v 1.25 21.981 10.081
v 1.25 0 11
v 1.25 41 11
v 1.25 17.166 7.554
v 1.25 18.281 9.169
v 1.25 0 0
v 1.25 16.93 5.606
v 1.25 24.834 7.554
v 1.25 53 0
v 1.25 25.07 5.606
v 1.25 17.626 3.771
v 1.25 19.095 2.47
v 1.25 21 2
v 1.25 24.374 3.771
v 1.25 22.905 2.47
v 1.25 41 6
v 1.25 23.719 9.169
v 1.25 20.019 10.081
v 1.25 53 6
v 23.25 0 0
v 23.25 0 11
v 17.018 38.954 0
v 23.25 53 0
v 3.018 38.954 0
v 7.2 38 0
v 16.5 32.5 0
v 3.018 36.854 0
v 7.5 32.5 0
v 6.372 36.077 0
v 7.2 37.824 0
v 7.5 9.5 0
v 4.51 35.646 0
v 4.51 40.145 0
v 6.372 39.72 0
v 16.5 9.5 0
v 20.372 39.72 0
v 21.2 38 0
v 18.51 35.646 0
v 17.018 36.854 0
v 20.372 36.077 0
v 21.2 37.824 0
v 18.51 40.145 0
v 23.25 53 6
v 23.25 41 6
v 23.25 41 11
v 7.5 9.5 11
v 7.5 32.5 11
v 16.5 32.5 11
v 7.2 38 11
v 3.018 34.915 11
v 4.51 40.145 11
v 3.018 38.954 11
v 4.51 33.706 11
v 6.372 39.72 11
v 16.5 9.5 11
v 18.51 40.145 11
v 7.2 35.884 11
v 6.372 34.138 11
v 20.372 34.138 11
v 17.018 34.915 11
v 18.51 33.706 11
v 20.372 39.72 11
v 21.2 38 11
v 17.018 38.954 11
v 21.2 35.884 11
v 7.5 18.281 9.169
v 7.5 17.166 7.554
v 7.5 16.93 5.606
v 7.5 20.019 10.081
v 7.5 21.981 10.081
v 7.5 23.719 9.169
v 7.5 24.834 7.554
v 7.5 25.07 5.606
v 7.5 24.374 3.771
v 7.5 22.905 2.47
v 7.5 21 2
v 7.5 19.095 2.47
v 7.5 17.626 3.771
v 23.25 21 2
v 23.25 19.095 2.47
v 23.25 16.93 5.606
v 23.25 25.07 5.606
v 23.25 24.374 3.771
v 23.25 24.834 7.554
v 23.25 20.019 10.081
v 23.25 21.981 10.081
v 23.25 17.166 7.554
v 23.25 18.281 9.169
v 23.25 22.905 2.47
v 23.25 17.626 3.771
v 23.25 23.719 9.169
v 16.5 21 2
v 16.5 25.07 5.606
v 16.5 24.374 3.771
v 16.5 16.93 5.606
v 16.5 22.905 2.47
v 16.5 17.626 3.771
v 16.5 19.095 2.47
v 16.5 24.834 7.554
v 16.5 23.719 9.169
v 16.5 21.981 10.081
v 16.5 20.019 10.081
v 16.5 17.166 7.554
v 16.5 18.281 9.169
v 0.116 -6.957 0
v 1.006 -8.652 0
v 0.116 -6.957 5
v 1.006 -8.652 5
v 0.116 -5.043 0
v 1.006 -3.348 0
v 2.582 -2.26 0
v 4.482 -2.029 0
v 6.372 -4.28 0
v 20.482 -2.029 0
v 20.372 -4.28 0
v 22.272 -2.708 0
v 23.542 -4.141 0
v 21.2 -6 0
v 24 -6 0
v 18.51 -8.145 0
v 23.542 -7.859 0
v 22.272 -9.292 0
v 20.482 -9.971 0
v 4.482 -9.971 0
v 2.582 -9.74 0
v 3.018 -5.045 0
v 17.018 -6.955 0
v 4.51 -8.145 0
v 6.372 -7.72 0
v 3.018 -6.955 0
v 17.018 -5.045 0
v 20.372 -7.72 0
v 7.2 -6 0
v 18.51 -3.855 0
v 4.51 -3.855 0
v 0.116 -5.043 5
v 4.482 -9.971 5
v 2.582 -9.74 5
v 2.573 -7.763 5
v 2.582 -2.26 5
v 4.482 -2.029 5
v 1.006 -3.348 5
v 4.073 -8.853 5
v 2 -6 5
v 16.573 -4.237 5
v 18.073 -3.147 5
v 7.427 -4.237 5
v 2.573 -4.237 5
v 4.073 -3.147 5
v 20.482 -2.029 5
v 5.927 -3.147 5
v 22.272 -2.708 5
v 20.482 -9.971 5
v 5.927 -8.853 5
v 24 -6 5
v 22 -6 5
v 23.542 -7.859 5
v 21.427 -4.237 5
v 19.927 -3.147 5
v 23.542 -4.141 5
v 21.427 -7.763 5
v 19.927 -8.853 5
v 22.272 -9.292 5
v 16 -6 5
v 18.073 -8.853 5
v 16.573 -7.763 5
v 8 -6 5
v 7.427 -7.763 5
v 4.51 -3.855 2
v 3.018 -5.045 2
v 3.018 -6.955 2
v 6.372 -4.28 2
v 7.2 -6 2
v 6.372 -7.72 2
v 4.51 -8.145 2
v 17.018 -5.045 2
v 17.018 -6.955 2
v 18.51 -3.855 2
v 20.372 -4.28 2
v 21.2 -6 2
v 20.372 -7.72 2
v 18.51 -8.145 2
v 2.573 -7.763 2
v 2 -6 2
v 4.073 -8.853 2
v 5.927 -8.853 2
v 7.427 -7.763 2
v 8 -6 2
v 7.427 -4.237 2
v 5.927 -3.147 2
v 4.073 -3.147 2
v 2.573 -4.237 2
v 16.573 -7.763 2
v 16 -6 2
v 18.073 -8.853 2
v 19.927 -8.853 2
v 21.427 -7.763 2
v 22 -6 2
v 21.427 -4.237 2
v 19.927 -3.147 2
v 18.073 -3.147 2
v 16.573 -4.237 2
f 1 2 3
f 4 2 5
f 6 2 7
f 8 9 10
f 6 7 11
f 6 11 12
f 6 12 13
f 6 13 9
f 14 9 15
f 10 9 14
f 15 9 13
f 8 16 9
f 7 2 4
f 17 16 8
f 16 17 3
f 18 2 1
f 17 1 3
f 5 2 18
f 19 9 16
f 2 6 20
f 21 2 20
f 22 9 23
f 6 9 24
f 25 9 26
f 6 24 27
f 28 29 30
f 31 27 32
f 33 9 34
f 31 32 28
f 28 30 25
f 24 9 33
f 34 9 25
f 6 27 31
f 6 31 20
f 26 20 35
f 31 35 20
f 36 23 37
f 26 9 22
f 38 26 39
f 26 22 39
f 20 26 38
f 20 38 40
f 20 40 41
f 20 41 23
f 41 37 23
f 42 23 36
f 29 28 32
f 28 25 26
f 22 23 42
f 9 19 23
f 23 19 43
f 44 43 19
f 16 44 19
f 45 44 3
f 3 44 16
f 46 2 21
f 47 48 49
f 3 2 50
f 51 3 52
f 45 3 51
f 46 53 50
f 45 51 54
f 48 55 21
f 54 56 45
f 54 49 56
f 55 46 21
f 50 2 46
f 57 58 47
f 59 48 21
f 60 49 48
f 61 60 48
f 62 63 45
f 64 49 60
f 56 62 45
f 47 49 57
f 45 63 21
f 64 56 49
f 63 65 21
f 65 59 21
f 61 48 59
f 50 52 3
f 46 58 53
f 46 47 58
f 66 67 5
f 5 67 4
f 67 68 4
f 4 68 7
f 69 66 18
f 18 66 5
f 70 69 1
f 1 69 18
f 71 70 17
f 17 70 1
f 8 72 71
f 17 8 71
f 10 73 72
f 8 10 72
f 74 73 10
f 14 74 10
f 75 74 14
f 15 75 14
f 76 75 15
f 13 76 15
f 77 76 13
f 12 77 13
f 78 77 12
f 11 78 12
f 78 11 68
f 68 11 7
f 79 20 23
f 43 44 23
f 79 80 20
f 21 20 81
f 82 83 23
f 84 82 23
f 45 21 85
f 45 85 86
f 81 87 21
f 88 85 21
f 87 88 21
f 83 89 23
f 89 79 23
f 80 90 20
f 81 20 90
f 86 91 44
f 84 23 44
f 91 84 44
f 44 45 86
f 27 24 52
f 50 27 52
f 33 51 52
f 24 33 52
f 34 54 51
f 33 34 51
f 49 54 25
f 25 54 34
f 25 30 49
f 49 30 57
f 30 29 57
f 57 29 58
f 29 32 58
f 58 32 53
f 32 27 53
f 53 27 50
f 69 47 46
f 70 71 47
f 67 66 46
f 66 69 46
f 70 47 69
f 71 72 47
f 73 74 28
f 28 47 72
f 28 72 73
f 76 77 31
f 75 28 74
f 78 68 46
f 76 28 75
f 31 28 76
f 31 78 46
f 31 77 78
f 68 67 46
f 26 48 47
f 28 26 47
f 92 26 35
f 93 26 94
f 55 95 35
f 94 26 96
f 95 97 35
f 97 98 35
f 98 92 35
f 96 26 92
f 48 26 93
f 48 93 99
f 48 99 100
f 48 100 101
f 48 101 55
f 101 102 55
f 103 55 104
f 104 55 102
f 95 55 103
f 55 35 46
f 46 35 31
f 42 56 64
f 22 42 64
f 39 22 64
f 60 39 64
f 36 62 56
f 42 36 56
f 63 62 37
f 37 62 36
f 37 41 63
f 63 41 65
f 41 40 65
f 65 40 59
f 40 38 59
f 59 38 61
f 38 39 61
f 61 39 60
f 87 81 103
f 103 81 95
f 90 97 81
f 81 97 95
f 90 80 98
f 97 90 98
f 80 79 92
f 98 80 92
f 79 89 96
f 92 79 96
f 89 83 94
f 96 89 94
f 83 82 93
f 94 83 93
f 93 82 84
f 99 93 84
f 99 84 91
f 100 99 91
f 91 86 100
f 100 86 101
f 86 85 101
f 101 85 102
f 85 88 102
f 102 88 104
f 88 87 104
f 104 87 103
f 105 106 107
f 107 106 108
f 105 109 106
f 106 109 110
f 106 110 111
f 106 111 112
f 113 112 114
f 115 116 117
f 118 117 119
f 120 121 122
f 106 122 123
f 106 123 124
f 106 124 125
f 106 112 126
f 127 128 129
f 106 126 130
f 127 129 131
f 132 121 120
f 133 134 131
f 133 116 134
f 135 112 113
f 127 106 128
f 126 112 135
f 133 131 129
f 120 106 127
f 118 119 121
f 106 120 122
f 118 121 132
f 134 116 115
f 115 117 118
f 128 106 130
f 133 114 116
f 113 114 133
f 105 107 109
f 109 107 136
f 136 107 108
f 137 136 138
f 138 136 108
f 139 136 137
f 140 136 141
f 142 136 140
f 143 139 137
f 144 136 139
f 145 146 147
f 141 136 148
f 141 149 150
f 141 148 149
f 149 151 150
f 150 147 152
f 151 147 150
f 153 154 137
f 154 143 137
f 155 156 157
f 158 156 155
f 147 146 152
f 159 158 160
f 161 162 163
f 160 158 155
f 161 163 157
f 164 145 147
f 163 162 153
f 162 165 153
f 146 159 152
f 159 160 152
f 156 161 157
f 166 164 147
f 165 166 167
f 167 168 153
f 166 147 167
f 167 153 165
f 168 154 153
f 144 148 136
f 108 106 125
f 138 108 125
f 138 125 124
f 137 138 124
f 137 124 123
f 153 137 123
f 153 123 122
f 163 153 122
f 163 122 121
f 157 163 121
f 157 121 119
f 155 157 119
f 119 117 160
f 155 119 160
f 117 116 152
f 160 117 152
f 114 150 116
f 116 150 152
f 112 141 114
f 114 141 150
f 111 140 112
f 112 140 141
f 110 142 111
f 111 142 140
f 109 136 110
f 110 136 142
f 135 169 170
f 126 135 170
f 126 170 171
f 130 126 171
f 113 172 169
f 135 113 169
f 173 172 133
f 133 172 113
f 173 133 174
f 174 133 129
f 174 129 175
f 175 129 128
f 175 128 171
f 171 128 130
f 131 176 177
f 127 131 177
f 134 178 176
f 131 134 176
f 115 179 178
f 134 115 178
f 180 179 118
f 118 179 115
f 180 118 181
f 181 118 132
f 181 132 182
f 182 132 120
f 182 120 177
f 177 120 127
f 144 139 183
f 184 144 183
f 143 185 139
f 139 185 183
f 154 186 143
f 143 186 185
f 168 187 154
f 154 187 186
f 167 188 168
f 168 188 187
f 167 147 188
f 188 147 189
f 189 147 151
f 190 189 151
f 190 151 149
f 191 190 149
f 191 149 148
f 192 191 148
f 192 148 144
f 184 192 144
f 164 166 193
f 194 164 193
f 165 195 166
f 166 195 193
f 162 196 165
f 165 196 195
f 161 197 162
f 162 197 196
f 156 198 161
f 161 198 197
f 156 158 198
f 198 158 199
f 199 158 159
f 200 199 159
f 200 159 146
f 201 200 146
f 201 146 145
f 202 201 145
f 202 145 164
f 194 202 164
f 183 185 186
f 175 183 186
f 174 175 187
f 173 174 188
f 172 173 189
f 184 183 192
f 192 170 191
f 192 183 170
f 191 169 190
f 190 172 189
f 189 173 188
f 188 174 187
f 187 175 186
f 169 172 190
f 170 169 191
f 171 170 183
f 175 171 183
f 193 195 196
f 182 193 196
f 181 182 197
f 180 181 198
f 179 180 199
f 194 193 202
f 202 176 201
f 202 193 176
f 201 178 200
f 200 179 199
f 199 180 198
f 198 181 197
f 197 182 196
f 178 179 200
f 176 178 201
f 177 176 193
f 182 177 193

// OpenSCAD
module extruder_idler_base(){
 translate([1.25,0,0]) cube([22,42+11,8+3]);
	
}

module extruder_idler_holes(){
 translate([12,21,0]){
  // Main cutout
  cube([9,23,25], center=true);
  // Idler shaft
  translate([-12,0,4.1+2])rotate([0,90,0])cylinder(r=4.1, h=24);
  // Screw holes
  //translate([7,-16,-1]) cylinder(r=2.2, h=24);
  //translate([-7,-16,-1]) cylinder(r=2.2, h=24);
  hull() {
    translate([7,17,-1]) cylinder(r=2.2, h=24);
    translate([7,17,-1]) rotate([10,0,0]) cylinder(r=2.2, h=24);
  }
  hull() {
    translate([-7,17,-1]) cylinder(r=2.2, h=24);
    translate([-7,17,-1]) rotate([10,0,0]) cylinder(r=2.2, h=24);
  }
 }
}


// Idler final part
module idler(){
 difference(){
  extruder_idler_base();
  extruder_idler_holes();
  translate([0,41,6]) cube(size=[25,20,10]);
 }
}

idler();
translate([0,-6,0]) screwholder();

module screwholder() {
	difference() {
		hull() {
			translate([4,0,0]) cylinder(r=4,h=5);
			translate([20,0,0]) cylinder(r=4,h=5);
		}
  		translate([5,0,-1])cylinder(r=2.2, h=24);
  		translate([19,0,-1])cylinder(r=2.2, h=24);
  		translate([5,0,2])cylinder(r=6/2, h=24);
  		translate([19,0,2])cylinder(r=6/2, h=24);
	}
}
